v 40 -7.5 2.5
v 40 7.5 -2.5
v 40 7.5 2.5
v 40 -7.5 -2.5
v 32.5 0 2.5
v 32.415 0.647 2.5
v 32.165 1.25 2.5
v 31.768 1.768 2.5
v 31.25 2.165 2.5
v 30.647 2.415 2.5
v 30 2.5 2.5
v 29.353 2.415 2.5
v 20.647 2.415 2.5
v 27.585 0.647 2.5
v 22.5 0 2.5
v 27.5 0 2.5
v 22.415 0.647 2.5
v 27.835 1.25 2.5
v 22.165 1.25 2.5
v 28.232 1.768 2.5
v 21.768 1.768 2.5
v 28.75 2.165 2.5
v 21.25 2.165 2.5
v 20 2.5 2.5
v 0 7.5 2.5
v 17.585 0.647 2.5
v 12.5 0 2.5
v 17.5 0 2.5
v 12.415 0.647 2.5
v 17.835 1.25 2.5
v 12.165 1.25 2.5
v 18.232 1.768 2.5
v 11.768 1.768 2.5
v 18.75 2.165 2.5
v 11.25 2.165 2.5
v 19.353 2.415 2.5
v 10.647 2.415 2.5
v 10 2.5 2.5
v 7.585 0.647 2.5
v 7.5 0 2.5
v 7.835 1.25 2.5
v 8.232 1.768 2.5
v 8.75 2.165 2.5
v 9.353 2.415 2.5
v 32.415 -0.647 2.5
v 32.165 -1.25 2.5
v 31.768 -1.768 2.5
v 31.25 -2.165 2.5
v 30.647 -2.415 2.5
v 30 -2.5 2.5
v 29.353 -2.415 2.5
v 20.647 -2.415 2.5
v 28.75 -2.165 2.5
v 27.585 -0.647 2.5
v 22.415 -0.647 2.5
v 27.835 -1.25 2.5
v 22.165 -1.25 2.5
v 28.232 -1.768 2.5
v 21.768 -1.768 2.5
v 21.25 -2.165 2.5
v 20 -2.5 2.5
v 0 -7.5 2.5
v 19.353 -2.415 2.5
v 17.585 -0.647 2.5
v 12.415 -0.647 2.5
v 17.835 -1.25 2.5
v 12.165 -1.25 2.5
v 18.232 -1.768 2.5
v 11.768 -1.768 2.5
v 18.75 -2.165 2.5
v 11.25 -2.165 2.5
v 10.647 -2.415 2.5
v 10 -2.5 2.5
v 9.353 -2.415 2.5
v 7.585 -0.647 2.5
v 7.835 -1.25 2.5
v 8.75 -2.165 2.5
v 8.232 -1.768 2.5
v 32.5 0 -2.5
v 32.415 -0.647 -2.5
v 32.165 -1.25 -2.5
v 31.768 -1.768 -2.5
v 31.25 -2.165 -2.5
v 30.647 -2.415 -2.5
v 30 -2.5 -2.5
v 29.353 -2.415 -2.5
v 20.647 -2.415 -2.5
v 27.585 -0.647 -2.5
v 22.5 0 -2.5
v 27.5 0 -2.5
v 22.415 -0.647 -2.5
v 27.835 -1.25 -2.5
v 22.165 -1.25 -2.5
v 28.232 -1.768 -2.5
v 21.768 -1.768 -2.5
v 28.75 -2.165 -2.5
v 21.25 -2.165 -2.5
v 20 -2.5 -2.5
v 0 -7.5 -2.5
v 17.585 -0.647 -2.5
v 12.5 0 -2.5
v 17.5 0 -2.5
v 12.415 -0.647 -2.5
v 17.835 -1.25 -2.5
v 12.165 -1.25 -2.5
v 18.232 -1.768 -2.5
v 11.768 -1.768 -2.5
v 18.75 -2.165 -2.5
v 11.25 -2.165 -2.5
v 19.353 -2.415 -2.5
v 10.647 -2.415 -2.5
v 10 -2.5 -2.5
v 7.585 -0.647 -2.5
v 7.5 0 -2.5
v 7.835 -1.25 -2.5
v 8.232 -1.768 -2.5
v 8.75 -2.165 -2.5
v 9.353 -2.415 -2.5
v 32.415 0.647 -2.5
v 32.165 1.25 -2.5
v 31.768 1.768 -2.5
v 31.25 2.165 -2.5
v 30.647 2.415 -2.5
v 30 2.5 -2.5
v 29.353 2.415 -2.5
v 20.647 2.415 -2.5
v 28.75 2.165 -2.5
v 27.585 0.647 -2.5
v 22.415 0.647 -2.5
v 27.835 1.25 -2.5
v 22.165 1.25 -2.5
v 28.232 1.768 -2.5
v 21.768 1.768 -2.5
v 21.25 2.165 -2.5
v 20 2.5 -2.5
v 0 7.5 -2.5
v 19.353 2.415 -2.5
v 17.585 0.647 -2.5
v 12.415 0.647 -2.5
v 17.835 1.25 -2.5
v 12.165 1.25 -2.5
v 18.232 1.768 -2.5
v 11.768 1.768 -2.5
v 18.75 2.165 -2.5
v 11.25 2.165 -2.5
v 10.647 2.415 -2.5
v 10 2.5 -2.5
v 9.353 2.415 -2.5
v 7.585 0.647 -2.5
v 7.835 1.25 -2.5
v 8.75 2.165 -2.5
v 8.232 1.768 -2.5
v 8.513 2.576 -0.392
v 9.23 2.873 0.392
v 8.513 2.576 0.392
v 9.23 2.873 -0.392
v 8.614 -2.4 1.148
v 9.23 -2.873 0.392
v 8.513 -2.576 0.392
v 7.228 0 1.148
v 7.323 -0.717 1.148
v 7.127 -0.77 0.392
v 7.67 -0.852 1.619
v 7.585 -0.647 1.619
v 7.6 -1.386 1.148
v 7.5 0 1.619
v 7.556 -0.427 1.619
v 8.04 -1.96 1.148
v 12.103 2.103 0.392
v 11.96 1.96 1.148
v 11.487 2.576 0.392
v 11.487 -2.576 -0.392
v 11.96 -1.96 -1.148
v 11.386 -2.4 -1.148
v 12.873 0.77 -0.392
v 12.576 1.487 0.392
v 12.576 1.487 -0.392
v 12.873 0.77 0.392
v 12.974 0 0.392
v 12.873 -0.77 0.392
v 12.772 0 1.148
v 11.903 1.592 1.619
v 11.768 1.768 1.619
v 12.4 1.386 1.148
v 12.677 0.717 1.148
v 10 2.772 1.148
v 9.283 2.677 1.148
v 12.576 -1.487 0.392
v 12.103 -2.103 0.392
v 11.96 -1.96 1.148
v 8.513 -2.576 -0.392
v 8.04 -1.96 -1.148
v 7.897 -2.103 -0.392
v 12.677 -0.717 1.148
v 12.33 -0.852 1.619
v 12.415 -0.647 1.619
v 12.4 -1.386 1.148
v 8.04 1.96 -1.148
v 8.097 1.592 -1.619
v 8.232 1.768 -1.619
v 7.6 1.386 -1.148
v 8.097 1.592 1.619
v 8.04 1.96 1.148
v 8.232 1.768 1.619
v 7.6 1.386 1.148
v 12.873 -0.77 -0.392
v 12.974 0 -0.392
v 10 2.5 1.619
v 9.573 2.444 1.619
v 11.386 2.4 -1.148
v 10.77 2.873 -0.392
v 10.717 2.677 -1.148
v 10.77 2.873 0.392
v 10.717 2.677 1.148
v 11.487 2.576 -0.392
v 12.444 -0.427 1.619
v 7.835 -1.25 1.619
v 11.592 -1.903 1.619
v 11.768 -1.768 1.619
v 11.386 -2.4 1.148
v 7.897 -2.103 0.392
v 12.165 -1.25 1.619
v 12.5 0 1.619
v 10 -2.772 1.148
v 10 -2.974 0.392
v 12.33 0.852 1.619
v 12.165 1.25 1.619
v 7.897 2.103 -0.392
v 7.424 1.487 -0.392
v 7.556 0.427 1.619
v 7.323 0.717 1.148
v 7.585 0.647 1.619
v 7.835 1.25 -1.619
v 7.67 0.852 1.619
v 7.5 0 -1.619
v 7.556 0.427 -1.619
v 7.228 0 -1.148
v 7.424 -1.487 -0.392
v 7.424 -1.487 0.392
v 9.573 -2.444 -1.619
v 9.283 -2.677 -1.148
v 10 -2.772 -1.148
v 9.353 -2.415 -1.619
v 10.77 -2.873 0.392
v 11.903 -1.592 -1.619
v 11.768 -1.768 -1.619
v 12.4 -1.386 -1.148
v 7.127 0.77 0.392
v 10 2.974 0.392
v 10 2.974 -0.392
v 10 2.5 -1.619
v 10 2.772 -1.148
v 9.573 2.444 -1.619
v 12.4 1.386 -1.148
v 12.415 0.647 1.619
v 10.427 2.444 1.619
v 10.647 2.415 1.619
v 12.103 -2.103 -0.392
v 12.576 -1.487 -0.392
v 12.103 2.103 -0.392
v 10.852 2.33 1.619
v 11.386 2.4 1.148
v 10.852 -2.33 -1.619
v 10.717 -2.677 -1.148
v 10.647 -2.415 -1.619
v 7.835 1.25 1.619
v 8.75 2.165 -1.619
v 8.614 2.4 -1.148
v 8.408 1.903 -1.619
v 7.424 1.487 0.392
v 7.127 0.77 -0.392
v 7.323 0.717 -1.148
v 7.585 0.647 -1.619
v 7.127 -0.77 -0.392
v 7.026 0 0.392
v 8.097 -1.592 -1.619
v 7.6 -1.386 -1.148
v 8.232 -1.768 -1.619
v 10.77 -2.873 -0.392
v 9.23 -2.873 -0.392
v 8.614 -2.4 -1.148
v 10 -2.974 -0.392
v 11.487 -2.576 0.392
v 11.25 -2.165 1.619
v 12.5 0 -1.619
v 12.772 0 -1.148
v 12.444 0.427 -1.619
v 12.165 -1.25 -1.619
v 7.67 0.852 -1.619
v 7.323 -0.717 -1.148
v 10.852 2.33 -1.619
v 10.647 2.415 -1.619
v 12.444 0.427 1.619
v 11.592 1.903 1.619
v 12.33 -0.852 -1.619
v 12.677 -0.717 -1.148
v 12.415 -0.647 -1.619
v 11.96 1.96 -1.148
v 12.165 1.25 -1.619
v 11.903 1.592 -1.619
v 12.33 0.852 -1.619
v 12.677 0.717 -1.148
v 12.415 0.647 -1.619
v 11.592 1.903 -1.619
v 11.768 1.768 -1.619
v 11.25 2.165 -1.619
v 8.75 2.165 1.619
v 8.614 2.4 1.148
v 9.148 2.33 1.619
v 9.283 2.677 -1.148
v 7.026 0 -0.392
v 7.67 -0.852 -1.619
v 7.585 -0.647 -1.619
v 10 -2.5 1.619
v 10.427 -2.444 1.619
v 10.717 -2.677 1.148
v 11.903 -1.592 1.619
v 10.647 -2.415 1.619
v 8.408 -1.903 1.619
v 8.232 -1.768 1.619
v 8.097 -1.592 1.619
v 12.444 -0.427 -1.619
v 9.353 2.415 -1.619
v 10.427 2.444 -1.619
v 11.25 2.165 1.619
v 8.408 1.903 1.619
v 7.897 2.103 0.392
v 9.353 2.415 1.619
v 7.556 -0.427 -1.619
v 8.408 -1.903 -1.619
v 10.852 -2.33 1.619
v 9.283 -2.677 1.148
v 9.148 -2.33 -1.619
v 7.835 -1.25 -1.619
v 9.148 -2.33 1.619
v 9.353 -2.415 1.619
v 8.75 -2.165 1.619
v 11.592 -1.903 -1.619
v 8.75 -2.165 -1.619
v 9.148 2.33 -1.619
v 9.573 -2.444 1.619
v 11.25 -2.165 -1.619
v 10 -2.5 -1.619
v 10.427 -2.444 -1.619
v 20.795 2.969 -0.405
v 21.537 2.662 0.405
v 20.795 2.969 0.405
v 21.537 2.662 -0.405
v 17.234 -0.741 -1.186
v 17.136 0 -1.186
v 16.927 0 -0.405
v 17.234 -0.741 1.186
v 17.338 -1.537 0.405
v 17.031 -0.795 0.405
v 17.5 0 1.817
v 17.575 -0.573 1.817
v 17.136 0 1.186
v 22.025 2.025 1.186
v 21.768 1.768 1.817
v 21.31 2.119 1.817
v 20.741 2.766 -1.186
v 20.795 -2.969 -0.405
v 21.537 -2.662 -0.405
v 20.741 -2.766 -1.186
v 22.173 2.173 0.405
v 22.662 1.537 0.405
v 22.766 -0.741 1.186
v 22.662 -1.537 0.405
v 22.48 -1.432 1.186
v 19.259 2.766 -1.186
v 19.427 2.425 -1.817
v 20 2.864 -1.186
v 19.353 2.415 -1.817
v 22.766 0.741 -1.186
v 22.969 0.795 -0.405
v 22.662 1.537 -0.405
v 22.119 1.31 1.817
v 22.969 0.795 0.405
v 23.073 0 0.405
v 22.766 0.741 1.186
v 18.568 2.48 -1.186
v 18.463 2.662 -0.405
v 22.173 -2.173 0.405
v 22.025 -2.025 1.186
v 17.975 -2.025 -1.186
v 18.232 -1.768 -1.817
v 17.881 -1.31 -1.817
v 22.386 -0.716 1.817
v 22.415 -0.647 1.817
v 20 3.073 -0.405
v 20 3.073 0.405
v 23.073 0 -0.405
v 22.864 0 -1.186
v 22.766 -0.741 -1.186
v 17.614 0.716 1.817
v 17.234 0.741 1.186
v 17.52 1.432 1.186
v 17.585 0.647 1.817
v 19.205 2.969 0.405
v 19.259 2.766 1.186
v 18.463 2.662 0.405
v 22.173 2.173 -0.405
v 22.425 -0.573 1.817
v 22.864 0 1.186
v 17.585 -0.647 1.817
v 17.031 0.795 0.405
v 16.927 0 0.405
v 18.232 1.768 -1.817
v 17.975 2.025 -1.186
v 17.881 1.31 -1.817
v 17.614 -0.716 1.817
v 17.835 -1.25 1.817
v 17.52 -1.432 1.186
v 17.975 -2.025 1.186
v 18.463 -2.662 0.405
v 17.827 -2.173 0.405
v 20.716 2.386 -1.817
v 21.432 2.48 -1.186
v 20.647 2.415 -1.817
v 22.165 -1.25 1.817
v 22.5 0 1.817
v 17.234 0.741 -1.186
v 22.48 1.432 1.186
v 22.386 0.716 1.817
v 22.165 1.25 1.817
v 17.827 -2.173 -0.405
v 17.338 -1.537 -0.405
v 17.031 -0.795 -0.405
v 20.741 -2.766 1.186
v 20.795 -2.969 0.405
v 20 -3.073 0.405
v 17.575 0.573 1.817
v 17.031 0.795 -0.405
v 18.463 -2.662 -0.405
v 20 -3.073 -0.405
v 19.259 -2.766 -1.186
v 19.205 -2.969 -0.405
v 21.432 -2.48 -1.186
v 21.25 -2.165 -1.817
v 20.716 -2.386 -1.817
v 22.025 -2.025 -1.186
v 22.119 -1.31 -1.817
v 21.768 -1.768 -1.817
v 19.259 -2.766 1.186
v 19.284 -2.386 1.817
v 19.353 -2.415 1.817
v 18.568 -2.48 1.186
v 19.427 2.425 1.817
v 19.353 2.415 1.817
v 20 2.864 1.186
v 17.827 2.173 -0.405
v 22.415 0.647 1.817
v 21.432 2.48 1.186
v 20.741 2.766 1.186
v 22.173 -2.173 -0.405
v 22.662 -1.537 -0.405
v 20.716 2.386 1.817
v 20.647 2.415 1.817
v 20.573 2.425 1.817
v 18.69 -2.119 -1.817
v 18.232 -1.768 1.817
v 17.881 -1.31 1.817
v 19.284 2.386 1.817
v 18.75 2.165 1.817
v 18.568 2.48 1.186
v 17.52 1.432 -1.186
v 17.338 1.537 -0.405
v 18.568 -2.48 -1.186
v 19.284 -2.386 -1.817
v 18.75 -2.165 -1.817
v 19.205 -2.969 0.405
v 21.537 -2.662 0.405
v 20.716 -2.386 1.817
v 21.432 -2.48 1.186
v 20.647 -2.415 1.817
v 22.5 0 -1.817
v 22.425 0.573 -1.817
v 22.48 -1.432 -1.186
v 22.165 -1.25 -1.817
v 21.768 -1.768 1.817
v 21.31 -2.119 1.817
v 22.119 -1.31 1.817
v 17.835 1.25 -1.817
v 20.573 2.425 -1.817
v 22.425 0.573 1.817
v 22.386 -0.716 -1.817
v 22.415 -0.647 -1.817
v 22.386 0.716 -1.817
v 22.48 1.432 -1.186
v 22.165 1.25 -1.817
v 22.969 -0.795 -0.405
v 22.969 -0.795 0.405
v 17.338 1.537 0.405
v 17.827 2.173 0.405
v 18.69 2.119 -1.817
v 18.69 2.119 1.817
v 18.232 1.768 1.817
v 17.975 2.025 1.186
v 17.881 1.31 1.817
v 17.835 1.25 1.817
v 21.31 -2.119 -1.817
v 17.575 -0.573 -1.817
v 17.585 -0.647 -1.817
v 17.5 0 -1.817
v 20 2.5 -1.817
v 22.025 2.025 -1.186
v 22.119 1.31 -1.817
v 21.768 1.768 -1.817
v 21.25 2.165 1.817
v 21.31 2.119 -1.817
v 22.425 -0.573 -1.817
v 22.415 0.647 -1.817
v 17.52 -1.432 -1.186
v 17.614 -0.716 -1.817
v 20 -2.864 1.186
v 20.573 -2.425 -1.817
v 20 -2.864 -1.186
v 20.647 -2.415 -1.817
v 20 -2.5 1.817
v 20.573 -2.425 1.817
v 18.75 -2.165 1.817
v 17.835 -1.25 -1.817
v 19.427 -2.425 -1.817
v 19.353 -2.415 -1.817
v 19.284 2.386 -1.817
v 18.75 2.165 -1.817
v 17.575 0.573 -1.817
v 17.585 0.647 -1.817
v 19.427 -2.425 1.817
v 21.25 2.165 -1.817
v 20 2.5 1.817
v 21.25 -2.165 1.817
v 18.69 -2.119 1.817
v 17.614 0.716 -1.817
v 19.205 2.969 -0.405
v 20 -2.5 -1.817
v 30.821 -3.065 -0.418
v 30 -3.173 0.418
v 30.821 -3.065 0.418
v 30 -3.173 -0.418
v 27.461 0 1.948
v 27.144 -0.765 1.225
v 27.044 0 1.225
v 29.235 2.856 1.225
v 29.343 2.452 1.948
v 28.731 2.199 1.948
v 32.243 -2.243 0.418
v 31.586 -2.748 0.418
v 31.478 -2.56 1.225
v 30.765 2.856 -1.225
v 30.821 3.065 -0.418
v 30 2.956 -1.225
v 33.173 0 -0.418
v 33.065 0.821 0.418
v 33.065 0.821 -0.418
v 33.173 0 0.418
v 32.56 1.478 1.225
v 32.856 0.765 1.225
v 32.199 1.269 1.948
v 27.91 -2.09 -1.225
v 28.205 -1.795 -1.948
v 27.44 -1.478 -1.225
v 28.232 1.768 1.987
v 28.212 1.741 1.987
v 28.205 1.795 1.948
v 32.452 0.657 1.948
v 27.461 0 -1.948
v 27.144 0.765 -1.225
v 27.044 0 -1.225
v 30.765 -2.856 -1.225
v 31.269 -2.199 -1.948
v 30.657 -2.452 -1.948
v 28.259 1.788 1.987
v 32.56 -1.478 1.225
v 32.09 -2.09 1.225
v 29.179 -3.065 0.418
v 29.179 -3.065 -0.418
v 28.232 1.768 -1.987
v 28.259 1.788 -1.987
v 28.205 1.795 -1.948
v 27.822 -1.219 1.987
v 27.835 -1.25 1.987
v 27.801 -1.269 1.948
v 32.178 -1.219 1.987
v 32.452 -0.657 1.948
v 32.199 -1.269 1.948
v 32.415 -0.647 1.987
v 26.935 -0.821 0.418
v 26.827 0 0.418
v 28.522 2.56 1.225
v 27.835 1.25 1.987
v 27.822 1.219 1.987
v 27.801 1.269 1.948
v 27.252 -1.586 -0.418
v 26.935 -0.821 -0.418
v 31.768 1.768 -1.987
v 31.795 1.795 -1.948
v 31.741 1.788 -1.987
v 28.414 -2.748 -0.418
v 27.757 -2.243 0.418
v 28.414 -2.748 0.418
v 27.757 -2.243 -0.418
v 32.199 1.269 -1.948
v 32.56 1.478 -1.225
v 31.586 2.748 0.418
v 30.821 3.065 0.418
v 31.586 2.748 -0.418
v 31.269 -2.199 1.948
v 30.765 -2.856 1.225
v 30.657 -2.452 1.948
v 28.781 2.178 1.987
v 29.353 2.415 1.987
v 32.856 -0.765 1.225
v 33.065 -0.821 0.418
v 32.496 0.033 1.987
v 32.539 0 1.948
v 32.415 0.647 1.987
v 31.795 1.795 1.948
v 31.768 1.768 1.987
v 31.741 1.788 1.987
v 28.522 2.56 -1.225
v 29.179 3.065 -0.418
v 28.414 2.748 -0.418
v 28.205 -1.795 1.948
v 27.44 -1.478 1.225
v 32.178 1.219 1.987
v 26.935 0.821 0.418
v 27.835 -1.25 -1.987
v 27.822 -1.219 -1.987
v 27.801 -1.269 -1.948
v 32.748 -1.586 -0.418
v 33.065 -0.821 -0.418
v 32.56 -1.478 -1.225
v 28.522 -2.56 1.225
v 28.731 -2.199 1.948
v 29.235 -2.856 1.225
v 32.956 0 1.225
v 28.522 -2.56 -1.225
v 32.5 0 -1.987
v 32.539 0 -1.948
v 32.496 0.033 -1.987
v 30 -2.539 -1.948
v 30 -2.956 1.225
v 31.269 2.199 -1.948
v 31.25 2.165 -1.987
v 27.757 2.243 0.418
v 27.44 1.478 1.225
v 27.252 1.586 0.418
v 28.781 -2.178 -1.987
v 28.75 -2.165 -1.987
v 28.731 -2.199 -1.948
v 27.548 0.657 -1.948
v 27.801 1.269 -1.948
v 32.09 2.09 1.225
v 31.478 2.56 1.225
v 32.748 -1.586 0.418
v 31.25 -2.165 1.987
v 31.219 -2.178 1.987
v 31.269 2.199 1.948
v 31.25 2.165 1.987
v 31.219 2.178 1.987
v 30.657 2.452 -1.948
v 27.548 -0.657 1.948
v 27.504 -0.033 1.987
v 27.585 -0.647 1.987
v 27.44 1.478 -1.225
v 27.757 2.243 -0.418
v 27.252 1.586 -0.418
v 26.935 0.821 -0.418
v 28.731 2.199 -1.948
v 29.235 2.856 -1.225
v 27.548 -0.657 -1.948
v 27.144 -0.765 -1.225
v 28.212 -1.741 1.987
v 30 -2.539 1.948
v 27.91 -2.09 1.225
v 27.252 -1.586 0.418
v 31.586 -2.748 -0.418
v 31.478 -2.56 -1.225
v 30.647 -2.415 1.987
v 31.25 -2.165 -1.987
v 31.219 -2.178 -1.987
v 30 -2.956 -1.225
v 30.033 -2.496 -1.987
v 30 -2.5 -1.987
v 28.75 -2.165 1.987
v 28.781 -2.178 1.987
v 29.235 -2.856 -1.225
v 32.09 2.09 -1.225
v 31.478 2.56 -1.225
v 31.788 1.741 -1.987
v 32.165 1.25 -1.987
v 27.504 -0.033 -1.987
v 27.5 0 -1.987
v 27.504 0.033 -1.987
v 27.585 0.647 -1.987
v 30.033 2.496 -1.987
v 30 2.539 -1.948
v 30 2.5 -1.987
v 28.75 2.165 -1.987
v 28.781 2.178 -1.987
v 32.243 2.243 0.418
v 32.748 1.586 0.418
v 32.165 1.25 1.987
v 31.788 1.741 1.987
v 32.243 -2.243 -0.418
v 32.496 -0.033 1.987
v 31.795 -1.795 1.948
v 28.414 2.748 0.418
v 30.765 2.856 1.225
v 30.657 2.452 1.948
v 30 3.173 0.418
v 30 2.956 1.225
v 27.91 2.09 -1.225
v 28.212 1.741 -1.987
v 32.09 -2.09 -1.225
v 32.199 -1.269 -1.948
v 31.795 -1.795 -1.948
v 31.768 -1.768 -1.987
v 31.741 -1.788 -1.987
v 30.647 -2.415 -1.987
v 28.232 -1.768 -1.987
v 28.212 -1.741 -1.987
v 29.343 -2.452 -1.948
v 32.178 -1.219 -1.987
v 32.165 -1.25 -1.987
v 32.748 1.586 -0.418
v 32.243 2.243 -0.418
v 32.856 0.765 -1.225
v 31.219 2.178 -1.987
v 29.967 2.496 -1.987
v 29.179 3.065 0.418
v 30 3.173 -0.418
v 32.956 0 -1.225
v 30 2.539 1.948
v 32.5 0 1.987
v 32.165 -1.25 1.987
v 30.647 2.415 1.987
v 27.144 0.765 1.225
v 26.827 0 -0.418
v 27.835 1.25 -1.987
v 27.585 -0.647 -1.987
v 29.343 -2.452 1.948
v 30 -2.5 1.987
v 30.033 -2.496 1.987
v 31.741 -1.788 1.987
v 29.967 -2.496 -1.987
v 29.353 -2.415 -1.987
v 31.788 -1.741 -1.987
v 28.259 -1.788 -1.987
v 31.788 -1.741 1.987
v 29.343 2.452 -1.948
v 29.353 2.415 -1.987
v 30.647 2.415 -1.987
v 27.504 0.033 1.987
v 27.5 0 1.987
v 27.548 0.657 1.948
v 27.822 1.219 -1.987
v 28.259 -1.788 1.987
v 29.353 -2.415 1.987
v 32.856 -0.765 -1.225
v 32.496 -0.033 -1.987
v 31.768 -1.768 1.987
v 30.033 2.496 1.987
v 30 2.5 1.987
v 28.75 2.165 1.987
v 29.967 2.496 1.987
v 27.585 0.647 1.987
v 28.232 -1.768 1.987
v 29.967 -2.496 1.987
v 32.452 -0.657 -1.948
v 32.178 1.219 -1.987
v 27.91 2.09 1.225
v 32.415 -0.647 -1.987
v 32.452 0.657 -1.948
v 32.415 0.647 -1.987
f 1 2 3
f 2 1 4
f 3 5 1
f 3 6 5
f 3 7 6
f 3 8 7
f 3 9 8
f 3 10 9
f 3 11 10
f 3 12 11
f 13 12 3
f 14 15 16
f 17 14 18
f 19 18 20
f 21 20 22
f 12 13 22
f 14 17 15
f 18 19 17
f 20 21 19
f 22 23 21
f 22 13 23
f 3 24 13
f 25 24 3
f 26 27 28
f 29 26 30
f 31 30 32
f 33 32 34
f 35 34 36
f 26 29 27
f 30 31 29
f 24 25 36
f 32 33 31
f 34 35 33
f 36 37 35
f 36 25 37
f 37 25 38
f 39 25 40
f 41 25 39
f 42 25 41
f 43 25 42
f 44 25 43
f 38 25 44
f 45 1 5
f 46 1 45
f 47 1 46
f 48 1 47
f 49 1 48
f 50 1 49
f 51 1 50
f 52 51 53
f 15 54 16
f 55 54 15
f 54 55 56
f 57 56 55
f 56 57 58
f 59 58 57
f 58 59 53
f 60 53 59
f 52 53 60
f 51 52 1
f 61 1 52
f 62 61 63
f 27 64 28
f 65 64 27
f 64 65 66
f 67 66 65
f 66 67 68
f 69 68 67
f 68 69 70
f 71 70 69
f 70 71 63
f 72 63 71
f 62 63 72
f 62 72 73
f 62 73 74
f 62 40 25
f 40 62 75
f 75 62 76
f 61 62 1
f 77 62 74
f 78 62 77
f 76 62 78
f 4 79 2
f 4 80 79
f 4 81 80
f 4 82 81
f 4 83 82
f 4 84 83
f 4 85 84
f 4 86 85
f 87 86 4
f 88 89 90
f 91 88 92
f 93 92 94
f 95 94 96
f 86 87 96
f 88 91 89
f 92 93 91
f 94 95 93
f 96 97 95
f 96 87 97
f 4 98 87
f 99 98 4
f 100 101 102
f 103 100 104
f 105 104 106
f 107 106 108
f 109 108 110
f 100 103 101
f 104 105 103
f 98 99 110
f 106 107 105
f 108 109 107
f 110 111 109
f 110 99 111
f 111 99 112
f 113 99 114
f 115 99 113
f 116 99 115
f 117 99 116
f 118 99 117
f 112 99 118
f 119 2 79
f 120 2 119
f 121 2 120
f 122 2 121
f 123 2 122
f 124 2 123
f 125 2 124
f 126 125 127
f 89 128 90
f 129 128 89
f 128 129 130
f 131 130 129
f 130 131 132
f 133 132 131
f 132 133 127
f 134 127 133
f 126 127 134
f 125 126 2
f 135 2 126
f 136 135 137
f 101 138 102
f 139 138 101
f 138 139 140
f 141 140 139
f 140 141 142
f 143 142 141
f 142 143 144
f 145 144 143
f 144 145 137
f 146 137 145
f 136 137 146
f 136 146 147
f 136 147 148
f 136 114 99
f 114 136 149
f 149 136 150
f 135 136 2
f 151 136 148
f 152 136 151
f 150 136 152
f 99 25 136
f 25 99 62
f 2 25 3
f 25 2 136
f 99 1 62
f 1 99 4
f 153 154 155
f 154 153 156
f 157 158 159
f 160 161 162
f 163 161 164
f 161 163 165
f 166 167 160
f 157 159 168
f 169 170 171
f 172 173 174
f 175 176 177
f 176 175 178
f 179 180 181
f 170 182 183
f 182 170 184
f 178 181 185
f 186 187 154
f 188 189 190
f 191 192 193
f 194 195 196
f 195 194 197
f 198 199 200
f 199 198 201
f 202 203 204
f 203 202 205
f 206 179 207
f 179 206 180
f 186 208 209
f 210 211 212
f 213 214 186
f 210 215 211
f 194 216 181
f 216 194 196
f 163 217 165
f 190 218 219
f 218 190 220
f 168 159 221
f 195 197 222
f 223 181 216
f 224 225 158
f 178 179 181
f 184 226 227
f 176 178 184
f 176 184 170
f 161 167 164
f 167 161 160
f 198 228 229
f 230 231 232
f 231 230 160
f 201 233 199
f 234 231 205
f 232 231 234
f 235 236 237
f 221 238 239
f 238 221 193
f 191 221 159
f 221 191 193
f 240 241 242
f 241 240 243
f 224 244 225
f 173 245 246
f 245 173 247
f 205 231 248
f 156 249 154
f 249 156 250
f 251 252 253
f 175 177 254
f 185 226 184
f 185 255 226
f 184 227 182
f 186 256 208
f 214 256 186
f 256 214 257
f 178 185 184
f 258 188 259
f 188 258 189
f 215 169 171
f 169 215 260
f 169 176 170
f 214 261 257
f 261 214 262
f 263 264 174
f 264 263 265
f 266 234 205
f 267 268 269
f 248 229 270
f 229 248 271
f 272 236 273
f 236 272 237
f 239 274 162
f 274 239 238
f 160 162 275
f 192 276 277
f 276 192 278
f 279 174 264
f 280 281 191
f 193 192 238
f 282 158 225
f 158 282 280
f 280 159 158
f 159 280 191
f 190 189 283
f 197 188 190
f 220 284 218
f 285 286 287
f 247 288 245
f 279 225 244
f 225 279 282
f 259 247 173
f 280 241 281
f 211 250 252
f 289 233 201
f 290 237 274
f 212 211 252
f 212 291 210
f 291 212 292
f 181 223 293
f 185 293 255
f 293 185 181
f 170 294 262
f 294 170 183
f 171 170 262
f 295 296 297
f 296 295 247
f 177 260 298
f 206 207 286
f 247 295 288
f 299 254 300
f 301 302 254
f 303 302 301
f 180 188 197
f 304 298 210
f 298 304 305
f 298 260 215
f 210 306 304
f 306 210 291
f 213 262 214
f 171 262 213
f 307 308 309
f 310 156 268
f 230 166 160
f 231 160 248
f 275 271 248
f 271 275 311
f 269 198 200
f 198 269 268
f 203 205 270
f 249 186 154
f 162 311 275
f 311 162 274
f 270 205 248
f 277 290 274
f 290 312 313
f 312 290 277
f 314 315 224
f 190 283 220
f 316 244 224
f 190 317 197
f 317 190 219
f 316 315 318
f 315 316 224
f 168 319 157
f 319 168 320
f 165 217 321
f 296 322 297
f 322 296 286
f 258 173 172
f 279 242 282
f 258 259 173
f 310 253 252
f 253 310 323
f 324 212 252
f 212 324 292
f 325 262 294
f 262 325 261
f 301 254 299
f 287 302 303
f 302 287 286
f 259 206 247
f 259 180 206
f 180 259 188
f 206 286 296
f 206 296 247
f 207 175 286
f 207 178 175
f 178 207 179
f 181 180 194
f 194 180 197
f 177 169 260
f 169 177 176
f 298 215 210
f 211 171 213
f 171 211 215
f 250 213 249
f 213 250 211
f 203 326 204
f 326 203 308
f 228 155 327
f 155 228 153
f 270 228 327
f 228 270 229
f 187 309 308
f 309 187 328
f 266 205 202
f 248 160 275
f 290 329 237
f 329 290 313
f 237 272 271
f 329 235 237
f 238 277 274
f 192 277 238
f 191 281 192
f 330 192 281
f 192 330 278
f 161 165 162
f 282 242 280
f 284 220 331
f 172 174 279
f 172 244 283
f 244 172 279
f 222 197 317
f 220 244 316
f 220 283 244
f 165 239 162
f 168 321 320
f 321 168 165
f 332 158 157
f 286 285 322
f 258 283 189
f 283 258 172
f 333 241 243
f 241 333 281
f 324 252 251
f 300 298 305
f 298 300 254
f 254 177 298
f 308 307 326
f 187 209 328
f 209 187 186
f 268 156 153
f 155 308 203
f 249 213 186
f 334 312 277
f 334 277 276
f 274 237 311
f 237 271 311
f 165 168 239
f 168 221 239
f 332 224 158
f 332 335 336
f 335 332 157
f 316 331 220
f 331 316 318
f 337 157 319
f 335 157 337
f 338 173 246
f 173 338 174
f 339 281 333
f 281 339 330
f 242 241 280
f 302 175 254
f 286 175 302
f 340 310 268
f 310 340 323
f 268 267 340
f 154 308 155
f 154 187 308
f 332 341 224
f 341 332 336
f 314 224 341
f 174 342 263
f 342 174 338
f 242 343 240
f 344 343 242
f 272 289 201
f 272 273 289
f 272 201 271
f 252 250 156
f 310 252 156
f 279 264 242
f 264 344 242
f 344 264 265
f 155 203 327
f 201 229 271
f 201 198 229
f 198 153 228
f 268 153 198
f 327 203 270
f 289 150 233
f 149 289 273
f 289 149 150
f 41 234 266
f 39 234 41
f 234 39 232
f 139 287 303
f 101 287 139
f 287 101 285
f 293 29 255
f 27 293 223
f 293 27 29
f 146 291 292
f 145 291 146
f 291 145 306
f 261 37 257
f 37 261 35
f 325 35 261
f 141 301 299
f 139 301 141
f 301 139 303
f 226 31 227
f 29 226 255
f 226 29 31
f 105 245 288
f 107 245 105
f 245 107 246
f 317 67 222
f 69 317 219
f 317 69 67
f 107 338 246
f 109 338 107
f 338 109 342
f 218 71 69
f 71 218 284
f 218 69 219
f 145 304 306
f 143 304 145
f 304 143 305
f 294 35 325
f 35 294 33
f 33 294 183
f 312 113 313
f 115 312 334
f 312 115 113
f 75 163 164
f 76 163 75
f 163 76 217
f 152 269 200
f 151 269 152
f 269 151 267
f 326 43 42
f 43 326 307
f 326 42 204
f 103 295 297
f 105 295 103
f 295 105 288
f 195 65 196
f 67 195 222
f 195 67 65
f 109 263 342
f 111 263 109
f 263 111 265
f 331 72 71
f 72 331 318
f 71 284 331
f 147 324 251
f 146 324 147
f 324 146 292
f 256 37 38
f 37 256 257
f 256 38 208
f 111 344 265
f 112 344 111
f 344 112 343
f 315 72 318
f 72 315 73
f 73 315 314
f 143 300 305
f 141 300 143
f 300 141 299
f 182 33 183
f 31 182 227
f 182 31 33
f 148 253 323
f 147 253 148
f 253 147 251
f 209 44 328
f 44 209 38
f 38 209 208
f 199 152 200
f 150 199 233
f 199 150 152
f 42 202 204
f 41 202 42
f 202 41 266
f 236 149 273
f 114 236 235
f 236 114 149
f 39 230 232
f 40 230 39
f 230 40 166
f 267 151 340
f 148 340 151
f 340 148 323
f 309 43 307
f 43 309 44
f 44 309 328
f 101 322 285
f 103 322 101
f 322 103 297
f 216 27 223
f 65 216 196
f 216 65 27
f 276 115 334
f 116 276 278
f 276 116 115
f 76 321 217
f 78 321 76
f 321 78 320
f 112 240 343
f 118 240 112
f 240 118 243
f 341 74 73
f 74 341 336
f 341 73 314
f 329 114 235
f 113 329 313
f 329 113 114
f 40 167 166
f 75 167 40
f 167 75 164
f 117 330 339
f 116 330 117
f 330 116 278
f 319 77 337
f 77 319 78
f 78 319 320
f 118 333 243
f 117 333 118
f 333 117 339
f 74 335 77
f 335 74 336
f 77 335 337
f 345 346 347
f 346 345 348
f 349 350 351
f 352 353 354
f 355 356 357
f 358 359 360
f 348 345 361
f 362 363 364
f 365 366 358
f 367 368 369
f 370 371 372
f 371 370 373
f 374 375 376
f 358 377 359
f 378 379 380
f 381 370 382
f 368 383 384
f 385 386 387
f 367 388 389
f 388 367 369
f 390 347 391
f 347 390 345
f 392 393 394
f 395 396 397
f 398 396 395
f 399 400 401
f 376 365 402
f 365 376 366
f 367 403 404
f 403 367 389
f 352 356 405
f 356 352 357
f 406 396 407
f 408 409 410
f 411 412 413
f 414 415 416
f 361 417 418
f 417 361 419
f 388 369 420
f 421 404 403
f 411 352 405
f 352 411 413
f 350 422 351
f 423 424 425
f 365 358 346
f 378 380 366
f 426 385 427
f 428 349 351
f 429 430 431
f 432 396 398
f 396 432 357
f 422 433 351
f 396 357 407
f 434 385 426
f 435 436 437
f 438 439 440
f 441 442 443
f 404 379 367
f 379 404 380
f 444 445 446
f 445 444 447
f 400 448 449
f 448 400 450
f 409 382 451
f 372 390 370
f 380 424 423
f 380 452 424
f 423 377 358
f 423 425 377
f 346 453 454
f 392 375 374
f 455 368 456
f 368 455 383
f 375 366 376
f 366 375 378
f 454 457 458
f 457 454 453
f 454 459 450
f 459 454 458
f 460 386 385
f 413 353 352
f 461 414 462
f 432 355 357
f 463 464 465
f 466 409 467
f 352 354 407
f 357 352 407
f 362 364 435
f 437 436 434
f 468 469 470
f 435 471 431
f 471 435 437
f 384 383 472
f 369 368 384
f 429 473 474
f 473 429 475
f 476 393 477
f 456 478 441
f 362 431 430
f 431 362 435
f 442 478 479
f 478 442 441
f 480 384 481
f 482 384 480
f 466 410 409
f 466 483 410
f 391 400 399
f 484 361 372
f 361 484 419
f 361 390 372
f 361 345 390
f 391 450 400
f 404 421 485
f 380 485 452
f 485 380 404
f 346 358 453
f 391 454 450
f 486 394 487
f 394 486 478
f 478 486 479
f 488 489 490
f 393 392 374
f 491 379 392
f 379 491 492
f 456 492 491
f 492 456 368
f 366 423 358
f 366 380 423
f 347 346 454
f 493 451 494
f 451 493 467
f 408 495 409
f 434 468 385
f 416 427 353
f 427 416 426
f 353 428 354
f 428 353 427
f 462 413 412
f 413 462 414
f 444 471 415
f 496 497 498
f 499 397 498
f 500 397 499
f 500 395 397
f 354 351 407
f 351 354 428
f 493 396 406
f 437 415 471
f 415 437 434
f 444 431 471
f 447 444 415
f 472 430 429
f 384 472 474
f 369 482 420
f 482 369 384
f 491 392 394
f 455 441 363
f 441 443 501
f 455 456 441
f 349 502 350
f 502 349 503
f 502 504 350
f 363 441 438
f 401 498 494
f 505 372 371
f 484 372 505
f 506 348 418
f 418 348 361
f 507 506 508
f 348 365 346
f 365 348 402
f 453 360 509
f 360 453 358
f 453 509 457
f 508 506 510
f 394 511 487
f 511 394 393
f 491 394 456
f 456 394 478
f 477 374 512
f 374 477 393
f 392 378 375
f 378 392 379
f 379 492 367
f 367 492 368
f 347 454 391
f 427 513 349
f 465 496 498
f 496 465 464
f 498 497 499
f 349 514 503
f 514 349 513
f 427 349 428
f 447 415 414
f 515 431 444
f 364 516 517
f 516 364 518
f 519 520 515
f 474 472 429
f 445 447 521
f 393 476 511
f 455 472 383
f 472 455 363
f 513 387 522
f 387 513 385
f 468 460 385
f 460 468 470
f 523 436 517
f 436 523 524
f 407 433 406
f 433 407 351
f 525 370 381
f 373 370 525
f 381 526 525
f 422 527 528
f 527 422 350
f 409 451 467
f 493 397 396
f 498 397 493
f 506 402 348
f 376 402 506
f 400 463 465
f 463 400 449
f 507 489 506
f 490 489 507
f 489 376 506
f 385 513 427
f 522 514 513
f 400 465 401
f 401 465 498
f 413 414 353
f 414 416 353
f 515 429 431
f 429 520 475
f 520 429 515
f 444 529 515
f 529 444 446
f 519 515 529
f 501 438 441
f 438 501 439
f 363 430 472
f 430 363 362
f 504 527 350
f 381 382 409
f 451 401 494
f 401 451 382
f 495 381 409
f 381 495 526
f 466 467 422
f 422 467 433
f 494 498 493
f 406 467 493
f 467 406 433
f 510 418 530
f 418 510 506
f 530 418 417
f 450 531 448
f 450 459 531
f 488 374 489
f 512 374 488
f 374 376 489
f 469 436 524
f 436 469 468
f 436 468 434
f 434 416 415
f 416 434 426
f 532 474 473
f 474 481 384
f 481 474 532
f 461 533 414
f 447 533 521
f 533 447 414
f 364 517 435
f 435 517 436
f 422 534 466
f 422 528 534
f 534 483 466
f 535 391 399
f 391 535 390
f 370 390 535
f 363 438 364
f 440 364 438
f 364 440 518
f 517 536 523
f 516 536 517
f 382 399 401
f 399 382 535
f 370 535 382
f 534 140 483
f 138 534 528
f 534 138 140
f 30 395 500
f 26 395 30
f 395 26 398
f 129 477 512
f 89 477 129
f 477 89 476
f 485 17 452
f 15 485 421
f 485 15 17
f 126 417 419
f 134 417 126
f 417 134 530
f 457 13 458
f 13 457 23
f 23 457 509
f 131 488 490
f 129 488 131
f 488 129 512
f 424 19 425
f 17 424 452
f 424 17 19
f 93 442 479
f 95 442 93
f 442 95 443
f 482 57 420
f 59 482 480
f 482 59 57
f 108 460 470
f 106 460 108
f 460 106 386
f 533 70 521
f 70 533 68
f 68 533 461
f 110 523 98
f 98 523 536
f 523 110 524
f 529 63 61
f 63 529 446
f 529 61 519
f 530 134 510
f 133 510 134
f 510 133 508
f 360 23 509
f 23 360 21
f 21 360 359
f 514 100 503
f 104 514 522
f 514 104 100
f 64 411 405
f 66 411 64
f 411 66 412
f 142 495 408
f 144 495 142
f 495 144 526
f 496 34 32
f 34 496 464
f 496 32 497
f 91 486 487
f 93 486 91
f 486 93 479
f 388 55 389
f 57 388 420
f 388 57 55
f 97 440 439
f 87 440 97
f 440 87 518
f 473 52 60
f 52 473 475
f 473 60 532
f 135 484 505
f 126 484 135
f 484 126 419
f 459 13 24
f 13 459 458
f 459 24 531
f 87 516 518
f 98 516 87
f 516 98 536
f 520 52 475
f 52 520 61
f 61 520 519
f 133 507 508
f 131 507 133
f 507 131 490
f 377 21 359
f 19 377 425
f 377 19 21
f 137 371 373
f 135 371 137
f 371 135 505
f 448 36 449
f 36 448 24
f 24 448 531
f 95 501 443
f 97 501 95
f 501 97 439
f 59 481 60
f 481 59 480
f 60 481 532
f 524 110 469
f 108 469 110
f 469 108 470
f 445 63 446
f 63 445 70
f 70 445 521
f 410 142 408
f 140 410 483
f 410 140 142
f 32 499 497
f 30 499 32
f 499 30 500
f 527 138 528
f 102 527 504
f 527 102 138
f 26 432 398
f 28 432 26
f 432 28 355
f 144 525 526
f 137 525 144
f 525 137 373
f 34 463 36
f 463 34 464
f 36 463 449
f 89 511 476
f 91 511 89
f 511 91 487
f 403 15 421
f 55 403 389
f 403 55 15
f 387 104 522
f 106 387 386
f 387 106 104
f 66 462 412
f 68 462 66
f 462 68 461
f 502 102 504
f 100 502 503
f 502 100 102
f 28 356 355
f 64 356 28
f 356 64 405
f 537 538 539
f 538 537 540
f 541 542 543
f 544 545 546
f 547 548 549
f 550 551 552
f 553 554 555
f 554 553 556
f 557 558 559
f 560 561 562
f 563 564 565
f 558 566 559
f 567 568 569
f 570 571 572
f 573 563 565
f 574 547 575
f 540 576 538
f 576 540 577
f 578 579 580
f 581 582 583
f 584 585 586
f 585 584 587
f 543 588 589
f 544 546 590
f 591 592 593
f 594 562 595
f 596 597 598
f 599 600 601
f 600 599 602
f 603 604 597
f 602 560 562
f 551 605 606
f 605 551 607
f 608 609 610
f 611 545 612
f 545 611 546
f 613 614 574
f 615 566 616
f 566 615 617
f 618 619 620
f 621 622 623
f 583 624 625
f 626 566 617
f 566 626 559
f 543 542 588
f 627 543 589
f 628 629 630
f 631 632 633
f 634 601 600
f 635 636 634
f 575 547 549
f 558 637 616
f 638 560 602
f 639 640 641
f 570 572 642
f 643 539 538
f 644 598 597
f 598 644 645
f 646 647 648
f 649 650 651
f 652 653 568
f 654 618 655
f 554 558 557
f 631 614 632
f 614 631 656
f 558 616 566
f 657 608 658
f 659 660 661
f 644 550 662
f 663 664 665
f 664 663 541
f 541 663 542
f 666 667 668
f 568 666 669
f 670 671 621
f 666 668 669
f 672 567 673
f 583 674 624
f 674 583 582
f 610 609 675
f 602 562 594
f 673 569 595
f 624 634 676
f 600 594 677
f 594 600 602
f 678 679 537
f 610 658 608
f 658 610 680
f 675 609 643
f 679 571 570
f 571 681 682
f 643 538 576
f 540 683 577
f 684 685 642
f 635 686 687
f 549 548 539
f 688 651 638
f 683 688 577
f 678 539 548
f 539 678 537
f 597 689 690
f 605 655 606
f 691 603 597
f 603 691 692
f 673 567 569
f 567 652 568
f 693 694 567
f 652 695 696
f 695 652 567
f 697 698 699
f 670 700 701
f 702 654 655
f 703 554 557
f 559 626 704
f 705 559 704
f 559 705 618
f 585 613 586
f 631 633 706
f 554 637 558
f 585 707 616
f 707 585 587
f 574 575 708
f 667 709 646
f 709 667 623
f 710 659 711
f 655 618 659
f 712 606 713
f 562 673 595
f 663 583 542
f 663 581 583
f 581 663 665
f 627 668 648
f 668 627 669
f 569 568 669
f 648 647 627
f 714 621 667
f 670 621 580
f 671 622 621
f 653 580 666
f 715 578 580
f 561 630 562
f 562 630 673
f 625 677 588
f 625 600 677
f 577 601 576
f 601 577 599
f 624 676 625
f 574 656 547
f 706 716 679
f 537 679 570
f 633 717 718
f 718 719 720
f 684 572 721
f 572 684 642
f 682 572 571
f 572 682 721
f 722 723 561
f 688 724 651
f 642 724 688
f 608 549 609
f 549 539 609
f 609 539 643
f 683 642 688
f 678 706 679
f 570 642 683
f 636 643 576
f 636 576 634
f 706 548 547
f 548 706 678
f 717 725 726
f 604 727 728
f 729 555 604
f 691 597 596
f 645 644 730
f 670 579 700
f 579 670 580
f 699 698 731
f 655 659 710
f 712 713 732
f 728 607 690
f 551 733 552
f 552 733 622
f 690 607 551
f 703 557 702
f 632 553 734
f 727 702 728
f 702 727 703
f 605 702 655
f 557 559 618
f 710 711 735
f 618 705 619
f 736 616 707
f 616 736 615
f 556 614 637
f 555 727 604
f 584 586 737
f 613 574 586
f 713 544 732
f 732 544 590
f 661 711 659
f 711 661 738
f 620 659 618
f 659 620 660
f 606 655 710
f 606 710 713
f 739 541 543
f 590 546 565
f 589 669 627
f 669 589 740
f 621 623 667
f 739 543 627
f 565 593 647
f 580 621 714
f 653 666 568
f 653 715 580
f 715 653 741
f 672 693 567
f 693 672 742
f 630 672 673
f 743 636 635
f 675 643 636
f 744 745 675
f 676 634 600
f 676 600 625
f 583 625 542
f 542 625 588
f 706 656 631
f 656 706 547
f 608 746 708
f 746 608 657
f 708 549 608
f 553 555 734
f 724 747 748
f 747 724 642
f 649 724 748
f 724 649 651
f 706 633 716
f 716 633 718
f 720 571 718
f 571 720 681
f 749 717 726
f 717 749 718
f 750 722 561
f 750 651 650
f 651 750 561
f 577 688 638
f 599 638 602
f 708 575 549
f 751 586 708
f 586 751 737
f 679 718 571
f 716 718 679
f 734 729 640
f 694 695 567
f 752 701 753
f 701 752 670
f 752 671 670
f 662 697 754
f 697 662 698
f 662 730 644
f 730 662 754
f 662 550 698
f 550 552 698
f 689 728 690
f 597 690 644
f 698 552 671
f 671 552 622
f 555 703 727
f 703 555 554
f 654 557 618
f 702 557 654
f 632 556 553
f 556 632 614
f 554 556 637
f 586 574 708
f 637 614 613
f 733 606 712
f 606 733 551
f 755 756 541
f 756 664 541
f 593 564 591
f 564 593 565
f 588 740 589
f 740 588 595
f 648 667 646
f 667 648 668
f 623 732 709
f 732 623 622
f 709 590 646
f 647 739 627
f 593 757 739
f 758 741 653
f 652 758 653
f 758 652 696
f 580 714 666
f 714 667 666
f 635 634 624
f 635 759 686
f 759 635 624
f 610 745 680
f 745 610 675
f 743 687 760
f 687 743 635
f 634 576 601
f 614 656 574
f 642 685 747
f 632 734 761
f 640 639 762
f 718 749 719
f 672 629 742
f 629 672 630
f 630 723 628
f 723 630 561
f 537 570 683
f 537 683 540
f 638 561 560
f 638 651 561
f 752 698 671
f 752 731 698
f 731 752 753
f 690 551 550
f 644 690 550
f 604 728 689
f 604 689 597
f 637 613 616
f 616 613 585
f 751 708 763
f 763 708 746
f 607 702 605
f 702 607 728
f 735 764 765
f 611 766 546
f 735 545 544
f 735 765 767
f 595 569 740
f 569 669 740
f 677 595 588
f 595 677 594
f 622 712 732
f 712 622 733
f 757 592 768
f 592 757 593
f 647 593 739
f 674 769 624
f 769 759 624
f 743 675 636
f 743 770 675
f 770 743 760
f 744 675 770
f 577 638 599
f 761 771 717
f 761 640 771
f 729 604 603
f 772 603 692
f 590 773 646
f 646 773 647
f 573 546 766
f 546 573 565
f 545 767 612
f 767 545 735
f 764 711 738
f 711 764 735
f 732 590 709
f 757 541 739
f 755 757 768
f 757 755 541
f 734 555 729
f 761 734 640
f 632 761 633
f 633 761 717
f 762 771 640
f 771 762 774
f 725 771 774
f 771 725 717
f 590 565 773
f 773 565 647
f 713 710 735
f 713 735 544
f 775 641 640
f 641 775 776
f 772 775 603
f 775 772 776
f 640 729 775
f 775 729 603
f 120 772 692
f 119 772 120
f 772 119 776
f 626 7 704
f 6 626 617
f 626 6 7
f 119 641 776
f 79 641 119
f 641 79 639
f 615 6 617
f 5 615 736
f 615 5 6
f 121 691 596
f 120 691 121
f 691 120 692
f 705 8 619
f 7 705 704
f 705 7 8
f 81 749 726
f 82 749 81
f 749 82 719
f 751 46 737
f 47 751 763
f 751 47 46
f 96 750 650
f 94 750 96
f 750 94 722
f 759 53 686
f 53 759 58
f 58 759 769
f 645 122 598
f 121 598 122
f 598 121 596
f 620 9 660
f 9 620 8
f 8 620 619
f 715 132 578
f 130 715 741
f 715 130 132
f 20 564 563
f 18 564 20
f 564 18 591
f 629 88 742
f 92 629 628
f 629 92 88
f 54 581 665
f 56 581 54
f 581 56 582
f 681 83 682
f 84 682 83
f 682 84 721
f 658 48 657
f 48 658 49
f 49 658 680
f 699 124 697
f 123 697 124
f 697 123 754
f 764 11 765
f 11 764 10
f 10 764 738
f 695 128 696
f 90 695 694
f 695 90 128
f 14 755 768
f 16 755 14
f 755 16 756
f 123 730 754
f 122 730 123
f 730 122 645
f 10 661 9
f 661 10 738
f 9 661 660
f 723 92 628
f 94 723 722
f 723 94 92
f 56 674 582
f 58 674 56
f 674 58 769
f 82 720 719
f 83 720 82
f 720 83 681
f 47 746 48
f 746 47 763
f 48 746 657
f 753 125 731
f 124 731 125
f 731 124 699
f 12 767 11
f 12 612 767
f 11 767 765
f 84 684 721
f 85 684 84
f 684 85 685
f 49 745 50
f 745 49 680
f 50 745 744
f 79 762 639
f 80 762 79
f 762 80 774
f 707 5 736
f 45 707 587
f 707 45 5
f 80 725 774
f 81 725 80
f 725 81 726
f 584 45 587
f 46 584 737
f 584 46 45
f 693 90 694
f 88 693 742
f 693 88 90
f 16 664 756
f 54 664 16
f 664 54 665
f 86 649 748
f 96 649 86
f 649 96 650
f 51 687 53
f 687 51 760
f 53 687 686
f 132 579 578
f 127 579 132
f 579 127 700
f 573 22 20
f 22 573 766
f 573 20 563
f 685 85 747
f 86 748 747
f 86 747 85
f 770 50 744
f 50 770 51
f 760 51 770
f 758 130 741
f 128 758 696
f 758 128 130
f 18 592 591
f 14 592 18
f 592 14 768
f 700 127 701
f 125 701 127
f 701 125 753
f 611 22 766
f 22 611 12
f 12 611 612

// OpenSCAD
$fn=24;

difference() {
translate([20,0,0])
cube([40,15,5], center=true);

// socket 1 with 6mm 
translate([10,0,0])
    sphere(d=6);

translate([10,0,0])
cylinder(h=10, d=5, center=true);
    
// socket 1 with 6.2mm 
translate([20,0,0])
    sphere(d=6.2);

translate([20,0,0])
cylinder(h=10, d=5, center=true);
    
// socket 1 with 6.4mm 
translate([30,0,0])
    sphere(d=6.4);

translate([30,0,0])
cylinder(h=10, d=5, center=true);
    
}
